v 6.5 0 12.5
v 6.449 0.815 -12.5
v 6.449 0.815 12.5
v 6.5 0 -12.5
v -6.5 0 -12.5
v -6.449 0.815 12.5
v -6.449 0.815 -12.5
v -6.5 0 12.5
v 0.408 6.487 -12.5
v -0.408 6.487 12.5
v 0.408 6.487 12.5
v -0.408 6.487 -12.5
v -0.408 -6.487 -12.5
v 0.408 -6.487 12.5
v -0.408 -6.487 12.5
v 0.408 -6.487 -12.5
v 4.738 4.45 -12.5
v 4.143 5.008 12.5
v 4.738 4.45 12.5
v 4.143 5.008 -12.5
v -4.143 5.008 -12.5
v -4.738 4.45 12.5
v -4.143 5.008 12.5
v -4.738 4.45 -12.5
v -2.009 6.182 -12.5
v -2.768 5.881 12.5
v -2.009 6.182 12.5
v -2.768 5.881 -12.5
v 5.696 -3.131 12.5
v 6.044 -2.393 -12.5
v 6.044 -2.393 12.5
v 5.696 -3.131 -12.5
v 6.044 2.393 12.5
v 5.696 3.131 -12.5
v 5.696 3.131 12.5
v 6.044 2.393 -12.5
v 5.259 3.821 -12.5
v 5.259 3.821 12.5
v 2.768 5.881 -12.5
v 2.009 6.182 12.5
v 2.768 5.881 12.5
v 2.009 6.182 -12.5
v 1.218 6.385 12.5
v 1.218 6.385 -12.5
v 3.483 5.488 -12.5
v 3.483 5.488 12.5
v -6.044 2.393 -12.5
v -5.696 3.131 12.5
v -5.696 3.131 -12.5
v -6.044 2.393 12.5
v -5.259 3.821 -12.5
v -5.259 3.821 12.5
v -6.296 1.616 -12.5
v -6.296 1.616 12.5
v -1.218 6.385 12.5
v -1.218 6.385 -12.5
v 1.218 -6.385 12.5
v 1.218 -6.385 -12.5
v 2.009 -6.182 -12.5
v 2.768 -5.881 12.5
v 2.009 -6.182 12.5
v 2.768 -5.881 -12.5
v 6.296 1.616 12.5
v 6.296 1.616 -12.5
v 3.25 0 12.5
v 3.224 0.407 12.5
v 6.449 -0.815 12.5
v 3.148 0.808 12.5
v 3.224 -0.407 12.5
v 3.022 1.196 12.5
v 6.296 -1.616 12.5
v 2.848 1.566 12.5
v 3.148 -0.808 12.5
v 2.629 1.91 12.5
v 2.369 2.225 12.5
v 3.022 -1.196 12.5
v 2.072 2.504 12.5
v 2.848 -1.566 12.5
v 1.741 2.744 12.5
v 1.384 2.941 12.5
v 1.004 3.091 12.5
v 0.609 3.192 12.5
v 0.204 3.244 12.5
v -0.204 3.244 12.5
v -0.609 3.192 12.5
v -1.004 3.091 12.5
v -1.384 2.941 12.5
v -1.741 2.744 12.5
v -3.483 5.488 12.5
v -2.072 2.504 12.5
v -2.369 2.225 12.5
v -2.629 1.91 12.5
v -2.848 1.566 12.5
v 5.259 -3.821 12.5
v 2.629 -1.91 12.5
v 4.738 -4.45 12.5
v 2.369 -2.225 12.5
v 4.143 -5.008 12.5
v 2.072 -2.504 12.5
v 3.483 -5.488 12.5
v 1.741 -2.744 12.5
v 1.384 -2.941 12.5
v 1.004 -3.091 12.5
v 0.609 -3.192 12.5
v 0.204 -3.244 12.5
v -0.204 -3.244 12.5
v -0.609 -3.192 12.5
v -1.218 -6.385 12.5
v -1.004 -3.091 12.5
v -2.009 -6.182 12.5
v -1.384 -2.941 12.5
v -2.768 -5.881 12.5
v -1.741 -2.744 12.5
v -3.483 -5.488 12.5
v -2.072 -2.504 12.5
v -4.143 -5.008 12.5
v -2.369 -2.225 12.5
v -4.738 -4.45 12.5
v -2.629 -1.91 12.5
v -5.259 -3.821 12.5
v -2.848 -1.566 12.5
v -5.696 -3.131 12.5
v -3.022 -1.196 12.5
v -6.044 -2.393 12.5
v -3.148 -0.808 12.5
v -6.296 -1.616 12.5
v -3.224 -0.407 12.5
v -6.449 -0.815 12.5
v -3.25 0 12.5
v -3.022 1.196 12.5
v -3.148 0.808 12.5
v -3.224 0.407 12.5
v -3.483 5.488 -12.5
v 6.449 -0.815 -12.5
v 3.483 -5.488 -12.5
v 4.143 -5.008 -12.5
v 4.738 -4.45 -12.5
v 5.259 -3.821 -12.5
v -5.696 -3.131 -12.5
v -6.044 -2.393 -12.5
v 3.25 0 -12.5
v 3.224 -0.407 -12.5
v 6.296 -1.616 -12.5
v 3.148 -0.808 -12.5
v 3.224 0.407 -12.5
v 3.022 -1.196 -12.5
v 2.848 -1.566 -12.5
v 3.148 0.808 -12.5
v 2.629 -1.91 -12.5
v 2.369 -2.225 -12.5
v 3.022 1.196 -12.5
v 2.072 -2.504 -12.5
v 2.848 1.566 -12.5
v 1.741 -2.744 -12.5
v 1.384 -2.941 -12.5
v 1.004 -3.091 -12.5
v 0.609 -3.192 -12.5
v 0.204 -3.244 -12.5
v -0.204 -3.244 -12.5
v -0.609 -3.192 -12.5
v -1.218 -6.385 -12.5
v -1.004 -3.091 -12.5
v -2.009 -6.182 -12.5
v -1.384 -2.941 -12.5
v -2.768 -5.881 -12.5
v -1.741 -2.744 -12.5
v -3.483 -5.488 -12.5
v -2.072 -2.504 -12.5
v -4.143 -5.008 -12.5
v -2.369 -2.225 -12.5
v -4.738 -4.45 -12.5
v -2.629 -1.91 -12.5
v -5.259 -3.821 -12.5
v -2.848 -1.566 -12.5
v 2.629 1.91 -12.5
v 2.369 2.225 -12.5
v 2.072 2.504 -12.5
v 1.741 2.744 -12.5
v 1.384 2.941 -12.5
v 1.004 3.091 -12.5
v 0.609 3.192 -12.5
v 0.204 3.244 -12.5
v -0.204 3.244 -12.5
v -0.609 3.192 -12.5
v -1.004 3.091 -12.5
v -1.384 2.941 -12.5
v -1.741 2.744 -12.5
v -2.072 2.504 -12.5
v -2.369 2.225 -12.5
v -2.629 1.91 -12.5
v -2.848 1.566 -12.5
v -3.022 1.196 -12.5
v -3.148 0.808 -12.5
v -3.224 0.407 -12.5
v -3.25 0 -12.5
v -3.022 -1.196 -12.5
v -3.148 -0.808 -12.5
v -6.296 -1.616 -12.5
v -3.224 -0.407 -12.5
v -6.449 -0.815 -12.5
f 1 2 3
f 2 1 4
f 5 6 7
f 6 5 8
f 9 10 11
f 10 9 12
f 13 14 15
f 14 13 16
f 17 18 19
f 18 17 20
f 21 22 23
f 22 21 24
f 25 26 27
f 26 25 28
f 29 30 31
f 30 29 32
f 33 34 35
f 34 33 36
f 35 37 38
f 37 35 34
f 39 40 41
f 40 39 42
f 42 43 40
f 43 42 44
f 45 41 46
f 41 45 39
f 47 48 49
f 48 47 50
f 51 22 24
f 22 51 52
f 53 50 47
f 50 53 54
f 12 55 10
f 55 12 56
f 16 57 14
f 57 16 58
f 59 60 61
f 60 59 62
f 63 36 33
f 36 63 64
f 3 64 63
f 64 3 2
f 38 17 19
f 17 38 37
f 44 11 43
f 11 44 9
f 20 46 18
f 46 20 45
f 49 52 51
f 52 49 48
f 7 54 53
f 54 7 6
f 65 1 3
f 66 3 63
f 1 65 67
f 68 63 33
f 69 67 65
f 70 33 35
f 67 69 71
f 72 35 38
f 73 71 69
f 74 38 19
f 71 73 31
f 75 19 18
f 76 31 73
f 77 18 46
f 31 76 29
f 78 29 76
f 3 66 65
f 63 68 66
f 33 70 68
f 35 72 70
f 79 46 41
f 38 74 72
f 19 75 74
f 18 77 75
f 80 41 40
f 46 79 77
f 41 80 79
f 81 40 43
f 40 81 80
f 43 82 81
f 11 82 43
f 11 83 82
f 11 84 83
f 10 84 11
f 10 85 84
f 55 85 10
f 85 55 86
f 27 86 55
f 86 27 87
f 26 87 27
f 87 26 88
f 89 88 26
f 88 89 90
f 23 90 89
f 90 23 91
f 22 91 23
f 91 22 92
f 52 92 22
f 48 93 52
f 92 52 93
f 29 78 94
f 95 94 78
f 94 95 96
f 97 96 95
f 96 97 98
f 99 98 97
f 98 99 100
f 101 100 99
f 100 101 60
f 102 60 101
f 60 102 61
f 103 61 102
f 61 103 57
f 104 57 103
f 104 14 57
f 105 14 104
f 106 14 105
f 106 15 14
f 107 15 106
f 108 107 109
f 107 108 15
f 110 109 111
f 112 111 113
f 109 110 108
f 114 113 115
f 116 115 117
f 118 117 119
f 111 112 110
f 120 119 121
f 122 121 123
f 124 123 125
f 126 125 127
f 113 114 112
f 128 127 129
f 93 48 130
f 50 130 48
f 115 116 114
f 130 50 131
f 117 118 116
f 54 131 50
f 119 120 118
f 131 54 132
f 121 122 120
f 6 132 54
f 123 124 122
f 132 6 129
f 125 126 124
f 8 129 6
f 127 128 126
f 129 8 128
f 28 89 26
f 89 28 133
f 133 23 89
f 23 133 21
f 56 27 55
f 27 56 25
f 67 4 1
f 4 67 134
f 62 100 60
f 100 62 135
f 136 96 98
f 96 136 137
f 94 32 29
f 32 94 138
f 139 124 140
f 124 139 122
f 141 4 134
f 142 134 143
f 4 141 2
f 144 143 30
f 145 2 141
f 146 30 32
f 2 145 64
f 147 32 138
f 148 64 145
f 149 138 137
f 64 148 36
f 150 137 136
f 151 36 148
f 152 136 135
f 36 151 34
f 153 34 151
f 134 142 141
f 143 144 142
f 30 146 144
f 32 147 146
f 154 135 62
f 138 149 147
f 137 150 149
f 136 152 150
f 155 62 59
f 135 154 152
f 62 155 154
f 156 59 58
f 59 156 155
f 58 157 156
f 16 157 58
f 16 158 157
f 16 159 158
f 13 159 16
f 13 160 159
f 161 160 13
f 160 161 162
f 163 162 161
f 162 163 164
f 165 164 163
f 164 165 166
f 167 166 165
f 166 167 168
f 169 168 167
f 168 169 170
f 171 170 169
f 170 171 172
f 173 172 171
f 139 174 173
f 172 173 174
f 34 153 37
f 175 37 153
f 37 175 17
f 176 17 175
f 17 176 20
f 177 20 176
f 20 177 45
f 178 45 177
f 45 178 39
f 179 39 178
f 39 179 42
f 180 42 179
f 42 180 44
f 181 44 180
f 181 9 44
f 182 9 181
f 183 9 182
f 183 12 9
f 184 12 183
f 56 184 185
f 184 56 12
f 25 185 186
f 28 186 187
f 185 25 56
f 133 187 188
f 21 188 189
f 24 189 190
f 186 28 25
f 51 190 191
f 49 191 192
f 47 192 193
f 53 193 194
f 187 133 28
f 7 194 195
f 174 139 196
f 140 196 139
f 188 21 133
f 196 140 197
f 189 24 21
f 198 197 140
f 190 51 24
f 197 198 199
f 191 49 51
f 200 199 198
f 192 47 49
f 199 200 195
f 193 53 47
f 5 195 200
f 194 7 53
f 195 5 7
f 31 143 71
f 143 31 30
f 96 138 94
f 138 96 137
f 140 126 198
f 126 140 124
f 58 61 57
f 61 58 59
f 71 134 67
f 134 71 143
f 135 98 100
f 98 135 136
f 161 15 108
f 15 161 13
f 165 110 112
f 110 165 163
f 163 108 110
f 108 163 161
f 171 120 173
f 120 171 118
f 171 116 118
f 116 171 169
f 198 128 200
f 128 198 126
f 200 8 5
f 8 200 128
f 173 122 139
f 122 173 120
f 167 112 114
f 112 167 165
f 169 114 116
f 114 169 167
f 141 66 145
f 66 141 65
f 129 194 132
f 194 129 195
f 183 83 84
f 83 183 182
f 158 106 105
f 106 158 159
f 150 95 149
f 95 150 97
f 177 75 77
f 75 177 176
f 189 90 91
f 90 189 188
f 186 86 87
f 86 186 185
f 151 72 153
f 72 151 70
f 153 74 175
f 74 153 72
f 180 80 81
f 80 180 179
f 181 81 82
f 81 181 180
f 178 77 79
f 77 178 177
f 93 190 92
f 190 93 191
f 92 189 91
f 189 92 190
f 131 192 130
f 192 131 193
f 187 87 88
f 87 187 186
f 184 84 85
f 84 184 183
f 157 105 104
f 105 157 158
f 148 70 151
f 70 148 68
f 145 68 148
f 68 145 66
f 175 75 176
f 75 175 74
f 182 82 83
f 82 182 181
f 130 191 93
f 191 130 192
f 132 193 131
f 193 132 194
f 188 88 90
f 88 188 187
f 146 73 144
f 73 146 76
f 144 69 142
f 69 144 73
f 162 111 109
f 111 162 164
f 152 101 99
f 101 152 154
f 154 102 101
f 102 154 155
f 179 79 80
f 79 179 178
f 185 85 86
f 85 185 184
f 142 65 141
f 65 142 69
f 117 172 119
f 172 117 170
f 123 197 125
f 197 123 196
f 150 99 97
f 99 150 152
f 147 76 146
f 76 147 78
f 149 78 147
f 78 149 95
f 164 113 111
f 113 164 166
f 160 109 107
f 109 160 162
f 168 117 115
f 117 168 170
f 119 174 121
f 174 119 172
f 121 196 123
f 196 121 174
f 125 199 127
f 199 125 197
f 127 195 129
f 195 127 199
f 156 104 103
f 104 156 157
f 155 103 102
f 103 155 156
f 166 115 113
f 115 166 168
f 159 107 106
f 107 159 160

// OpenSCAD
$fn = 50;


difference() {
	union() {
		translate(v = [0, 0, -12.5000000000]) {
			cylinder(h = 25, r = 6.5000000000);
		}
	}
	union() {
		translate(v = [0, 0, -100.0000000000]) {
			cylinder(h = 200, r = 3.2500000000);
		}
	}
}
